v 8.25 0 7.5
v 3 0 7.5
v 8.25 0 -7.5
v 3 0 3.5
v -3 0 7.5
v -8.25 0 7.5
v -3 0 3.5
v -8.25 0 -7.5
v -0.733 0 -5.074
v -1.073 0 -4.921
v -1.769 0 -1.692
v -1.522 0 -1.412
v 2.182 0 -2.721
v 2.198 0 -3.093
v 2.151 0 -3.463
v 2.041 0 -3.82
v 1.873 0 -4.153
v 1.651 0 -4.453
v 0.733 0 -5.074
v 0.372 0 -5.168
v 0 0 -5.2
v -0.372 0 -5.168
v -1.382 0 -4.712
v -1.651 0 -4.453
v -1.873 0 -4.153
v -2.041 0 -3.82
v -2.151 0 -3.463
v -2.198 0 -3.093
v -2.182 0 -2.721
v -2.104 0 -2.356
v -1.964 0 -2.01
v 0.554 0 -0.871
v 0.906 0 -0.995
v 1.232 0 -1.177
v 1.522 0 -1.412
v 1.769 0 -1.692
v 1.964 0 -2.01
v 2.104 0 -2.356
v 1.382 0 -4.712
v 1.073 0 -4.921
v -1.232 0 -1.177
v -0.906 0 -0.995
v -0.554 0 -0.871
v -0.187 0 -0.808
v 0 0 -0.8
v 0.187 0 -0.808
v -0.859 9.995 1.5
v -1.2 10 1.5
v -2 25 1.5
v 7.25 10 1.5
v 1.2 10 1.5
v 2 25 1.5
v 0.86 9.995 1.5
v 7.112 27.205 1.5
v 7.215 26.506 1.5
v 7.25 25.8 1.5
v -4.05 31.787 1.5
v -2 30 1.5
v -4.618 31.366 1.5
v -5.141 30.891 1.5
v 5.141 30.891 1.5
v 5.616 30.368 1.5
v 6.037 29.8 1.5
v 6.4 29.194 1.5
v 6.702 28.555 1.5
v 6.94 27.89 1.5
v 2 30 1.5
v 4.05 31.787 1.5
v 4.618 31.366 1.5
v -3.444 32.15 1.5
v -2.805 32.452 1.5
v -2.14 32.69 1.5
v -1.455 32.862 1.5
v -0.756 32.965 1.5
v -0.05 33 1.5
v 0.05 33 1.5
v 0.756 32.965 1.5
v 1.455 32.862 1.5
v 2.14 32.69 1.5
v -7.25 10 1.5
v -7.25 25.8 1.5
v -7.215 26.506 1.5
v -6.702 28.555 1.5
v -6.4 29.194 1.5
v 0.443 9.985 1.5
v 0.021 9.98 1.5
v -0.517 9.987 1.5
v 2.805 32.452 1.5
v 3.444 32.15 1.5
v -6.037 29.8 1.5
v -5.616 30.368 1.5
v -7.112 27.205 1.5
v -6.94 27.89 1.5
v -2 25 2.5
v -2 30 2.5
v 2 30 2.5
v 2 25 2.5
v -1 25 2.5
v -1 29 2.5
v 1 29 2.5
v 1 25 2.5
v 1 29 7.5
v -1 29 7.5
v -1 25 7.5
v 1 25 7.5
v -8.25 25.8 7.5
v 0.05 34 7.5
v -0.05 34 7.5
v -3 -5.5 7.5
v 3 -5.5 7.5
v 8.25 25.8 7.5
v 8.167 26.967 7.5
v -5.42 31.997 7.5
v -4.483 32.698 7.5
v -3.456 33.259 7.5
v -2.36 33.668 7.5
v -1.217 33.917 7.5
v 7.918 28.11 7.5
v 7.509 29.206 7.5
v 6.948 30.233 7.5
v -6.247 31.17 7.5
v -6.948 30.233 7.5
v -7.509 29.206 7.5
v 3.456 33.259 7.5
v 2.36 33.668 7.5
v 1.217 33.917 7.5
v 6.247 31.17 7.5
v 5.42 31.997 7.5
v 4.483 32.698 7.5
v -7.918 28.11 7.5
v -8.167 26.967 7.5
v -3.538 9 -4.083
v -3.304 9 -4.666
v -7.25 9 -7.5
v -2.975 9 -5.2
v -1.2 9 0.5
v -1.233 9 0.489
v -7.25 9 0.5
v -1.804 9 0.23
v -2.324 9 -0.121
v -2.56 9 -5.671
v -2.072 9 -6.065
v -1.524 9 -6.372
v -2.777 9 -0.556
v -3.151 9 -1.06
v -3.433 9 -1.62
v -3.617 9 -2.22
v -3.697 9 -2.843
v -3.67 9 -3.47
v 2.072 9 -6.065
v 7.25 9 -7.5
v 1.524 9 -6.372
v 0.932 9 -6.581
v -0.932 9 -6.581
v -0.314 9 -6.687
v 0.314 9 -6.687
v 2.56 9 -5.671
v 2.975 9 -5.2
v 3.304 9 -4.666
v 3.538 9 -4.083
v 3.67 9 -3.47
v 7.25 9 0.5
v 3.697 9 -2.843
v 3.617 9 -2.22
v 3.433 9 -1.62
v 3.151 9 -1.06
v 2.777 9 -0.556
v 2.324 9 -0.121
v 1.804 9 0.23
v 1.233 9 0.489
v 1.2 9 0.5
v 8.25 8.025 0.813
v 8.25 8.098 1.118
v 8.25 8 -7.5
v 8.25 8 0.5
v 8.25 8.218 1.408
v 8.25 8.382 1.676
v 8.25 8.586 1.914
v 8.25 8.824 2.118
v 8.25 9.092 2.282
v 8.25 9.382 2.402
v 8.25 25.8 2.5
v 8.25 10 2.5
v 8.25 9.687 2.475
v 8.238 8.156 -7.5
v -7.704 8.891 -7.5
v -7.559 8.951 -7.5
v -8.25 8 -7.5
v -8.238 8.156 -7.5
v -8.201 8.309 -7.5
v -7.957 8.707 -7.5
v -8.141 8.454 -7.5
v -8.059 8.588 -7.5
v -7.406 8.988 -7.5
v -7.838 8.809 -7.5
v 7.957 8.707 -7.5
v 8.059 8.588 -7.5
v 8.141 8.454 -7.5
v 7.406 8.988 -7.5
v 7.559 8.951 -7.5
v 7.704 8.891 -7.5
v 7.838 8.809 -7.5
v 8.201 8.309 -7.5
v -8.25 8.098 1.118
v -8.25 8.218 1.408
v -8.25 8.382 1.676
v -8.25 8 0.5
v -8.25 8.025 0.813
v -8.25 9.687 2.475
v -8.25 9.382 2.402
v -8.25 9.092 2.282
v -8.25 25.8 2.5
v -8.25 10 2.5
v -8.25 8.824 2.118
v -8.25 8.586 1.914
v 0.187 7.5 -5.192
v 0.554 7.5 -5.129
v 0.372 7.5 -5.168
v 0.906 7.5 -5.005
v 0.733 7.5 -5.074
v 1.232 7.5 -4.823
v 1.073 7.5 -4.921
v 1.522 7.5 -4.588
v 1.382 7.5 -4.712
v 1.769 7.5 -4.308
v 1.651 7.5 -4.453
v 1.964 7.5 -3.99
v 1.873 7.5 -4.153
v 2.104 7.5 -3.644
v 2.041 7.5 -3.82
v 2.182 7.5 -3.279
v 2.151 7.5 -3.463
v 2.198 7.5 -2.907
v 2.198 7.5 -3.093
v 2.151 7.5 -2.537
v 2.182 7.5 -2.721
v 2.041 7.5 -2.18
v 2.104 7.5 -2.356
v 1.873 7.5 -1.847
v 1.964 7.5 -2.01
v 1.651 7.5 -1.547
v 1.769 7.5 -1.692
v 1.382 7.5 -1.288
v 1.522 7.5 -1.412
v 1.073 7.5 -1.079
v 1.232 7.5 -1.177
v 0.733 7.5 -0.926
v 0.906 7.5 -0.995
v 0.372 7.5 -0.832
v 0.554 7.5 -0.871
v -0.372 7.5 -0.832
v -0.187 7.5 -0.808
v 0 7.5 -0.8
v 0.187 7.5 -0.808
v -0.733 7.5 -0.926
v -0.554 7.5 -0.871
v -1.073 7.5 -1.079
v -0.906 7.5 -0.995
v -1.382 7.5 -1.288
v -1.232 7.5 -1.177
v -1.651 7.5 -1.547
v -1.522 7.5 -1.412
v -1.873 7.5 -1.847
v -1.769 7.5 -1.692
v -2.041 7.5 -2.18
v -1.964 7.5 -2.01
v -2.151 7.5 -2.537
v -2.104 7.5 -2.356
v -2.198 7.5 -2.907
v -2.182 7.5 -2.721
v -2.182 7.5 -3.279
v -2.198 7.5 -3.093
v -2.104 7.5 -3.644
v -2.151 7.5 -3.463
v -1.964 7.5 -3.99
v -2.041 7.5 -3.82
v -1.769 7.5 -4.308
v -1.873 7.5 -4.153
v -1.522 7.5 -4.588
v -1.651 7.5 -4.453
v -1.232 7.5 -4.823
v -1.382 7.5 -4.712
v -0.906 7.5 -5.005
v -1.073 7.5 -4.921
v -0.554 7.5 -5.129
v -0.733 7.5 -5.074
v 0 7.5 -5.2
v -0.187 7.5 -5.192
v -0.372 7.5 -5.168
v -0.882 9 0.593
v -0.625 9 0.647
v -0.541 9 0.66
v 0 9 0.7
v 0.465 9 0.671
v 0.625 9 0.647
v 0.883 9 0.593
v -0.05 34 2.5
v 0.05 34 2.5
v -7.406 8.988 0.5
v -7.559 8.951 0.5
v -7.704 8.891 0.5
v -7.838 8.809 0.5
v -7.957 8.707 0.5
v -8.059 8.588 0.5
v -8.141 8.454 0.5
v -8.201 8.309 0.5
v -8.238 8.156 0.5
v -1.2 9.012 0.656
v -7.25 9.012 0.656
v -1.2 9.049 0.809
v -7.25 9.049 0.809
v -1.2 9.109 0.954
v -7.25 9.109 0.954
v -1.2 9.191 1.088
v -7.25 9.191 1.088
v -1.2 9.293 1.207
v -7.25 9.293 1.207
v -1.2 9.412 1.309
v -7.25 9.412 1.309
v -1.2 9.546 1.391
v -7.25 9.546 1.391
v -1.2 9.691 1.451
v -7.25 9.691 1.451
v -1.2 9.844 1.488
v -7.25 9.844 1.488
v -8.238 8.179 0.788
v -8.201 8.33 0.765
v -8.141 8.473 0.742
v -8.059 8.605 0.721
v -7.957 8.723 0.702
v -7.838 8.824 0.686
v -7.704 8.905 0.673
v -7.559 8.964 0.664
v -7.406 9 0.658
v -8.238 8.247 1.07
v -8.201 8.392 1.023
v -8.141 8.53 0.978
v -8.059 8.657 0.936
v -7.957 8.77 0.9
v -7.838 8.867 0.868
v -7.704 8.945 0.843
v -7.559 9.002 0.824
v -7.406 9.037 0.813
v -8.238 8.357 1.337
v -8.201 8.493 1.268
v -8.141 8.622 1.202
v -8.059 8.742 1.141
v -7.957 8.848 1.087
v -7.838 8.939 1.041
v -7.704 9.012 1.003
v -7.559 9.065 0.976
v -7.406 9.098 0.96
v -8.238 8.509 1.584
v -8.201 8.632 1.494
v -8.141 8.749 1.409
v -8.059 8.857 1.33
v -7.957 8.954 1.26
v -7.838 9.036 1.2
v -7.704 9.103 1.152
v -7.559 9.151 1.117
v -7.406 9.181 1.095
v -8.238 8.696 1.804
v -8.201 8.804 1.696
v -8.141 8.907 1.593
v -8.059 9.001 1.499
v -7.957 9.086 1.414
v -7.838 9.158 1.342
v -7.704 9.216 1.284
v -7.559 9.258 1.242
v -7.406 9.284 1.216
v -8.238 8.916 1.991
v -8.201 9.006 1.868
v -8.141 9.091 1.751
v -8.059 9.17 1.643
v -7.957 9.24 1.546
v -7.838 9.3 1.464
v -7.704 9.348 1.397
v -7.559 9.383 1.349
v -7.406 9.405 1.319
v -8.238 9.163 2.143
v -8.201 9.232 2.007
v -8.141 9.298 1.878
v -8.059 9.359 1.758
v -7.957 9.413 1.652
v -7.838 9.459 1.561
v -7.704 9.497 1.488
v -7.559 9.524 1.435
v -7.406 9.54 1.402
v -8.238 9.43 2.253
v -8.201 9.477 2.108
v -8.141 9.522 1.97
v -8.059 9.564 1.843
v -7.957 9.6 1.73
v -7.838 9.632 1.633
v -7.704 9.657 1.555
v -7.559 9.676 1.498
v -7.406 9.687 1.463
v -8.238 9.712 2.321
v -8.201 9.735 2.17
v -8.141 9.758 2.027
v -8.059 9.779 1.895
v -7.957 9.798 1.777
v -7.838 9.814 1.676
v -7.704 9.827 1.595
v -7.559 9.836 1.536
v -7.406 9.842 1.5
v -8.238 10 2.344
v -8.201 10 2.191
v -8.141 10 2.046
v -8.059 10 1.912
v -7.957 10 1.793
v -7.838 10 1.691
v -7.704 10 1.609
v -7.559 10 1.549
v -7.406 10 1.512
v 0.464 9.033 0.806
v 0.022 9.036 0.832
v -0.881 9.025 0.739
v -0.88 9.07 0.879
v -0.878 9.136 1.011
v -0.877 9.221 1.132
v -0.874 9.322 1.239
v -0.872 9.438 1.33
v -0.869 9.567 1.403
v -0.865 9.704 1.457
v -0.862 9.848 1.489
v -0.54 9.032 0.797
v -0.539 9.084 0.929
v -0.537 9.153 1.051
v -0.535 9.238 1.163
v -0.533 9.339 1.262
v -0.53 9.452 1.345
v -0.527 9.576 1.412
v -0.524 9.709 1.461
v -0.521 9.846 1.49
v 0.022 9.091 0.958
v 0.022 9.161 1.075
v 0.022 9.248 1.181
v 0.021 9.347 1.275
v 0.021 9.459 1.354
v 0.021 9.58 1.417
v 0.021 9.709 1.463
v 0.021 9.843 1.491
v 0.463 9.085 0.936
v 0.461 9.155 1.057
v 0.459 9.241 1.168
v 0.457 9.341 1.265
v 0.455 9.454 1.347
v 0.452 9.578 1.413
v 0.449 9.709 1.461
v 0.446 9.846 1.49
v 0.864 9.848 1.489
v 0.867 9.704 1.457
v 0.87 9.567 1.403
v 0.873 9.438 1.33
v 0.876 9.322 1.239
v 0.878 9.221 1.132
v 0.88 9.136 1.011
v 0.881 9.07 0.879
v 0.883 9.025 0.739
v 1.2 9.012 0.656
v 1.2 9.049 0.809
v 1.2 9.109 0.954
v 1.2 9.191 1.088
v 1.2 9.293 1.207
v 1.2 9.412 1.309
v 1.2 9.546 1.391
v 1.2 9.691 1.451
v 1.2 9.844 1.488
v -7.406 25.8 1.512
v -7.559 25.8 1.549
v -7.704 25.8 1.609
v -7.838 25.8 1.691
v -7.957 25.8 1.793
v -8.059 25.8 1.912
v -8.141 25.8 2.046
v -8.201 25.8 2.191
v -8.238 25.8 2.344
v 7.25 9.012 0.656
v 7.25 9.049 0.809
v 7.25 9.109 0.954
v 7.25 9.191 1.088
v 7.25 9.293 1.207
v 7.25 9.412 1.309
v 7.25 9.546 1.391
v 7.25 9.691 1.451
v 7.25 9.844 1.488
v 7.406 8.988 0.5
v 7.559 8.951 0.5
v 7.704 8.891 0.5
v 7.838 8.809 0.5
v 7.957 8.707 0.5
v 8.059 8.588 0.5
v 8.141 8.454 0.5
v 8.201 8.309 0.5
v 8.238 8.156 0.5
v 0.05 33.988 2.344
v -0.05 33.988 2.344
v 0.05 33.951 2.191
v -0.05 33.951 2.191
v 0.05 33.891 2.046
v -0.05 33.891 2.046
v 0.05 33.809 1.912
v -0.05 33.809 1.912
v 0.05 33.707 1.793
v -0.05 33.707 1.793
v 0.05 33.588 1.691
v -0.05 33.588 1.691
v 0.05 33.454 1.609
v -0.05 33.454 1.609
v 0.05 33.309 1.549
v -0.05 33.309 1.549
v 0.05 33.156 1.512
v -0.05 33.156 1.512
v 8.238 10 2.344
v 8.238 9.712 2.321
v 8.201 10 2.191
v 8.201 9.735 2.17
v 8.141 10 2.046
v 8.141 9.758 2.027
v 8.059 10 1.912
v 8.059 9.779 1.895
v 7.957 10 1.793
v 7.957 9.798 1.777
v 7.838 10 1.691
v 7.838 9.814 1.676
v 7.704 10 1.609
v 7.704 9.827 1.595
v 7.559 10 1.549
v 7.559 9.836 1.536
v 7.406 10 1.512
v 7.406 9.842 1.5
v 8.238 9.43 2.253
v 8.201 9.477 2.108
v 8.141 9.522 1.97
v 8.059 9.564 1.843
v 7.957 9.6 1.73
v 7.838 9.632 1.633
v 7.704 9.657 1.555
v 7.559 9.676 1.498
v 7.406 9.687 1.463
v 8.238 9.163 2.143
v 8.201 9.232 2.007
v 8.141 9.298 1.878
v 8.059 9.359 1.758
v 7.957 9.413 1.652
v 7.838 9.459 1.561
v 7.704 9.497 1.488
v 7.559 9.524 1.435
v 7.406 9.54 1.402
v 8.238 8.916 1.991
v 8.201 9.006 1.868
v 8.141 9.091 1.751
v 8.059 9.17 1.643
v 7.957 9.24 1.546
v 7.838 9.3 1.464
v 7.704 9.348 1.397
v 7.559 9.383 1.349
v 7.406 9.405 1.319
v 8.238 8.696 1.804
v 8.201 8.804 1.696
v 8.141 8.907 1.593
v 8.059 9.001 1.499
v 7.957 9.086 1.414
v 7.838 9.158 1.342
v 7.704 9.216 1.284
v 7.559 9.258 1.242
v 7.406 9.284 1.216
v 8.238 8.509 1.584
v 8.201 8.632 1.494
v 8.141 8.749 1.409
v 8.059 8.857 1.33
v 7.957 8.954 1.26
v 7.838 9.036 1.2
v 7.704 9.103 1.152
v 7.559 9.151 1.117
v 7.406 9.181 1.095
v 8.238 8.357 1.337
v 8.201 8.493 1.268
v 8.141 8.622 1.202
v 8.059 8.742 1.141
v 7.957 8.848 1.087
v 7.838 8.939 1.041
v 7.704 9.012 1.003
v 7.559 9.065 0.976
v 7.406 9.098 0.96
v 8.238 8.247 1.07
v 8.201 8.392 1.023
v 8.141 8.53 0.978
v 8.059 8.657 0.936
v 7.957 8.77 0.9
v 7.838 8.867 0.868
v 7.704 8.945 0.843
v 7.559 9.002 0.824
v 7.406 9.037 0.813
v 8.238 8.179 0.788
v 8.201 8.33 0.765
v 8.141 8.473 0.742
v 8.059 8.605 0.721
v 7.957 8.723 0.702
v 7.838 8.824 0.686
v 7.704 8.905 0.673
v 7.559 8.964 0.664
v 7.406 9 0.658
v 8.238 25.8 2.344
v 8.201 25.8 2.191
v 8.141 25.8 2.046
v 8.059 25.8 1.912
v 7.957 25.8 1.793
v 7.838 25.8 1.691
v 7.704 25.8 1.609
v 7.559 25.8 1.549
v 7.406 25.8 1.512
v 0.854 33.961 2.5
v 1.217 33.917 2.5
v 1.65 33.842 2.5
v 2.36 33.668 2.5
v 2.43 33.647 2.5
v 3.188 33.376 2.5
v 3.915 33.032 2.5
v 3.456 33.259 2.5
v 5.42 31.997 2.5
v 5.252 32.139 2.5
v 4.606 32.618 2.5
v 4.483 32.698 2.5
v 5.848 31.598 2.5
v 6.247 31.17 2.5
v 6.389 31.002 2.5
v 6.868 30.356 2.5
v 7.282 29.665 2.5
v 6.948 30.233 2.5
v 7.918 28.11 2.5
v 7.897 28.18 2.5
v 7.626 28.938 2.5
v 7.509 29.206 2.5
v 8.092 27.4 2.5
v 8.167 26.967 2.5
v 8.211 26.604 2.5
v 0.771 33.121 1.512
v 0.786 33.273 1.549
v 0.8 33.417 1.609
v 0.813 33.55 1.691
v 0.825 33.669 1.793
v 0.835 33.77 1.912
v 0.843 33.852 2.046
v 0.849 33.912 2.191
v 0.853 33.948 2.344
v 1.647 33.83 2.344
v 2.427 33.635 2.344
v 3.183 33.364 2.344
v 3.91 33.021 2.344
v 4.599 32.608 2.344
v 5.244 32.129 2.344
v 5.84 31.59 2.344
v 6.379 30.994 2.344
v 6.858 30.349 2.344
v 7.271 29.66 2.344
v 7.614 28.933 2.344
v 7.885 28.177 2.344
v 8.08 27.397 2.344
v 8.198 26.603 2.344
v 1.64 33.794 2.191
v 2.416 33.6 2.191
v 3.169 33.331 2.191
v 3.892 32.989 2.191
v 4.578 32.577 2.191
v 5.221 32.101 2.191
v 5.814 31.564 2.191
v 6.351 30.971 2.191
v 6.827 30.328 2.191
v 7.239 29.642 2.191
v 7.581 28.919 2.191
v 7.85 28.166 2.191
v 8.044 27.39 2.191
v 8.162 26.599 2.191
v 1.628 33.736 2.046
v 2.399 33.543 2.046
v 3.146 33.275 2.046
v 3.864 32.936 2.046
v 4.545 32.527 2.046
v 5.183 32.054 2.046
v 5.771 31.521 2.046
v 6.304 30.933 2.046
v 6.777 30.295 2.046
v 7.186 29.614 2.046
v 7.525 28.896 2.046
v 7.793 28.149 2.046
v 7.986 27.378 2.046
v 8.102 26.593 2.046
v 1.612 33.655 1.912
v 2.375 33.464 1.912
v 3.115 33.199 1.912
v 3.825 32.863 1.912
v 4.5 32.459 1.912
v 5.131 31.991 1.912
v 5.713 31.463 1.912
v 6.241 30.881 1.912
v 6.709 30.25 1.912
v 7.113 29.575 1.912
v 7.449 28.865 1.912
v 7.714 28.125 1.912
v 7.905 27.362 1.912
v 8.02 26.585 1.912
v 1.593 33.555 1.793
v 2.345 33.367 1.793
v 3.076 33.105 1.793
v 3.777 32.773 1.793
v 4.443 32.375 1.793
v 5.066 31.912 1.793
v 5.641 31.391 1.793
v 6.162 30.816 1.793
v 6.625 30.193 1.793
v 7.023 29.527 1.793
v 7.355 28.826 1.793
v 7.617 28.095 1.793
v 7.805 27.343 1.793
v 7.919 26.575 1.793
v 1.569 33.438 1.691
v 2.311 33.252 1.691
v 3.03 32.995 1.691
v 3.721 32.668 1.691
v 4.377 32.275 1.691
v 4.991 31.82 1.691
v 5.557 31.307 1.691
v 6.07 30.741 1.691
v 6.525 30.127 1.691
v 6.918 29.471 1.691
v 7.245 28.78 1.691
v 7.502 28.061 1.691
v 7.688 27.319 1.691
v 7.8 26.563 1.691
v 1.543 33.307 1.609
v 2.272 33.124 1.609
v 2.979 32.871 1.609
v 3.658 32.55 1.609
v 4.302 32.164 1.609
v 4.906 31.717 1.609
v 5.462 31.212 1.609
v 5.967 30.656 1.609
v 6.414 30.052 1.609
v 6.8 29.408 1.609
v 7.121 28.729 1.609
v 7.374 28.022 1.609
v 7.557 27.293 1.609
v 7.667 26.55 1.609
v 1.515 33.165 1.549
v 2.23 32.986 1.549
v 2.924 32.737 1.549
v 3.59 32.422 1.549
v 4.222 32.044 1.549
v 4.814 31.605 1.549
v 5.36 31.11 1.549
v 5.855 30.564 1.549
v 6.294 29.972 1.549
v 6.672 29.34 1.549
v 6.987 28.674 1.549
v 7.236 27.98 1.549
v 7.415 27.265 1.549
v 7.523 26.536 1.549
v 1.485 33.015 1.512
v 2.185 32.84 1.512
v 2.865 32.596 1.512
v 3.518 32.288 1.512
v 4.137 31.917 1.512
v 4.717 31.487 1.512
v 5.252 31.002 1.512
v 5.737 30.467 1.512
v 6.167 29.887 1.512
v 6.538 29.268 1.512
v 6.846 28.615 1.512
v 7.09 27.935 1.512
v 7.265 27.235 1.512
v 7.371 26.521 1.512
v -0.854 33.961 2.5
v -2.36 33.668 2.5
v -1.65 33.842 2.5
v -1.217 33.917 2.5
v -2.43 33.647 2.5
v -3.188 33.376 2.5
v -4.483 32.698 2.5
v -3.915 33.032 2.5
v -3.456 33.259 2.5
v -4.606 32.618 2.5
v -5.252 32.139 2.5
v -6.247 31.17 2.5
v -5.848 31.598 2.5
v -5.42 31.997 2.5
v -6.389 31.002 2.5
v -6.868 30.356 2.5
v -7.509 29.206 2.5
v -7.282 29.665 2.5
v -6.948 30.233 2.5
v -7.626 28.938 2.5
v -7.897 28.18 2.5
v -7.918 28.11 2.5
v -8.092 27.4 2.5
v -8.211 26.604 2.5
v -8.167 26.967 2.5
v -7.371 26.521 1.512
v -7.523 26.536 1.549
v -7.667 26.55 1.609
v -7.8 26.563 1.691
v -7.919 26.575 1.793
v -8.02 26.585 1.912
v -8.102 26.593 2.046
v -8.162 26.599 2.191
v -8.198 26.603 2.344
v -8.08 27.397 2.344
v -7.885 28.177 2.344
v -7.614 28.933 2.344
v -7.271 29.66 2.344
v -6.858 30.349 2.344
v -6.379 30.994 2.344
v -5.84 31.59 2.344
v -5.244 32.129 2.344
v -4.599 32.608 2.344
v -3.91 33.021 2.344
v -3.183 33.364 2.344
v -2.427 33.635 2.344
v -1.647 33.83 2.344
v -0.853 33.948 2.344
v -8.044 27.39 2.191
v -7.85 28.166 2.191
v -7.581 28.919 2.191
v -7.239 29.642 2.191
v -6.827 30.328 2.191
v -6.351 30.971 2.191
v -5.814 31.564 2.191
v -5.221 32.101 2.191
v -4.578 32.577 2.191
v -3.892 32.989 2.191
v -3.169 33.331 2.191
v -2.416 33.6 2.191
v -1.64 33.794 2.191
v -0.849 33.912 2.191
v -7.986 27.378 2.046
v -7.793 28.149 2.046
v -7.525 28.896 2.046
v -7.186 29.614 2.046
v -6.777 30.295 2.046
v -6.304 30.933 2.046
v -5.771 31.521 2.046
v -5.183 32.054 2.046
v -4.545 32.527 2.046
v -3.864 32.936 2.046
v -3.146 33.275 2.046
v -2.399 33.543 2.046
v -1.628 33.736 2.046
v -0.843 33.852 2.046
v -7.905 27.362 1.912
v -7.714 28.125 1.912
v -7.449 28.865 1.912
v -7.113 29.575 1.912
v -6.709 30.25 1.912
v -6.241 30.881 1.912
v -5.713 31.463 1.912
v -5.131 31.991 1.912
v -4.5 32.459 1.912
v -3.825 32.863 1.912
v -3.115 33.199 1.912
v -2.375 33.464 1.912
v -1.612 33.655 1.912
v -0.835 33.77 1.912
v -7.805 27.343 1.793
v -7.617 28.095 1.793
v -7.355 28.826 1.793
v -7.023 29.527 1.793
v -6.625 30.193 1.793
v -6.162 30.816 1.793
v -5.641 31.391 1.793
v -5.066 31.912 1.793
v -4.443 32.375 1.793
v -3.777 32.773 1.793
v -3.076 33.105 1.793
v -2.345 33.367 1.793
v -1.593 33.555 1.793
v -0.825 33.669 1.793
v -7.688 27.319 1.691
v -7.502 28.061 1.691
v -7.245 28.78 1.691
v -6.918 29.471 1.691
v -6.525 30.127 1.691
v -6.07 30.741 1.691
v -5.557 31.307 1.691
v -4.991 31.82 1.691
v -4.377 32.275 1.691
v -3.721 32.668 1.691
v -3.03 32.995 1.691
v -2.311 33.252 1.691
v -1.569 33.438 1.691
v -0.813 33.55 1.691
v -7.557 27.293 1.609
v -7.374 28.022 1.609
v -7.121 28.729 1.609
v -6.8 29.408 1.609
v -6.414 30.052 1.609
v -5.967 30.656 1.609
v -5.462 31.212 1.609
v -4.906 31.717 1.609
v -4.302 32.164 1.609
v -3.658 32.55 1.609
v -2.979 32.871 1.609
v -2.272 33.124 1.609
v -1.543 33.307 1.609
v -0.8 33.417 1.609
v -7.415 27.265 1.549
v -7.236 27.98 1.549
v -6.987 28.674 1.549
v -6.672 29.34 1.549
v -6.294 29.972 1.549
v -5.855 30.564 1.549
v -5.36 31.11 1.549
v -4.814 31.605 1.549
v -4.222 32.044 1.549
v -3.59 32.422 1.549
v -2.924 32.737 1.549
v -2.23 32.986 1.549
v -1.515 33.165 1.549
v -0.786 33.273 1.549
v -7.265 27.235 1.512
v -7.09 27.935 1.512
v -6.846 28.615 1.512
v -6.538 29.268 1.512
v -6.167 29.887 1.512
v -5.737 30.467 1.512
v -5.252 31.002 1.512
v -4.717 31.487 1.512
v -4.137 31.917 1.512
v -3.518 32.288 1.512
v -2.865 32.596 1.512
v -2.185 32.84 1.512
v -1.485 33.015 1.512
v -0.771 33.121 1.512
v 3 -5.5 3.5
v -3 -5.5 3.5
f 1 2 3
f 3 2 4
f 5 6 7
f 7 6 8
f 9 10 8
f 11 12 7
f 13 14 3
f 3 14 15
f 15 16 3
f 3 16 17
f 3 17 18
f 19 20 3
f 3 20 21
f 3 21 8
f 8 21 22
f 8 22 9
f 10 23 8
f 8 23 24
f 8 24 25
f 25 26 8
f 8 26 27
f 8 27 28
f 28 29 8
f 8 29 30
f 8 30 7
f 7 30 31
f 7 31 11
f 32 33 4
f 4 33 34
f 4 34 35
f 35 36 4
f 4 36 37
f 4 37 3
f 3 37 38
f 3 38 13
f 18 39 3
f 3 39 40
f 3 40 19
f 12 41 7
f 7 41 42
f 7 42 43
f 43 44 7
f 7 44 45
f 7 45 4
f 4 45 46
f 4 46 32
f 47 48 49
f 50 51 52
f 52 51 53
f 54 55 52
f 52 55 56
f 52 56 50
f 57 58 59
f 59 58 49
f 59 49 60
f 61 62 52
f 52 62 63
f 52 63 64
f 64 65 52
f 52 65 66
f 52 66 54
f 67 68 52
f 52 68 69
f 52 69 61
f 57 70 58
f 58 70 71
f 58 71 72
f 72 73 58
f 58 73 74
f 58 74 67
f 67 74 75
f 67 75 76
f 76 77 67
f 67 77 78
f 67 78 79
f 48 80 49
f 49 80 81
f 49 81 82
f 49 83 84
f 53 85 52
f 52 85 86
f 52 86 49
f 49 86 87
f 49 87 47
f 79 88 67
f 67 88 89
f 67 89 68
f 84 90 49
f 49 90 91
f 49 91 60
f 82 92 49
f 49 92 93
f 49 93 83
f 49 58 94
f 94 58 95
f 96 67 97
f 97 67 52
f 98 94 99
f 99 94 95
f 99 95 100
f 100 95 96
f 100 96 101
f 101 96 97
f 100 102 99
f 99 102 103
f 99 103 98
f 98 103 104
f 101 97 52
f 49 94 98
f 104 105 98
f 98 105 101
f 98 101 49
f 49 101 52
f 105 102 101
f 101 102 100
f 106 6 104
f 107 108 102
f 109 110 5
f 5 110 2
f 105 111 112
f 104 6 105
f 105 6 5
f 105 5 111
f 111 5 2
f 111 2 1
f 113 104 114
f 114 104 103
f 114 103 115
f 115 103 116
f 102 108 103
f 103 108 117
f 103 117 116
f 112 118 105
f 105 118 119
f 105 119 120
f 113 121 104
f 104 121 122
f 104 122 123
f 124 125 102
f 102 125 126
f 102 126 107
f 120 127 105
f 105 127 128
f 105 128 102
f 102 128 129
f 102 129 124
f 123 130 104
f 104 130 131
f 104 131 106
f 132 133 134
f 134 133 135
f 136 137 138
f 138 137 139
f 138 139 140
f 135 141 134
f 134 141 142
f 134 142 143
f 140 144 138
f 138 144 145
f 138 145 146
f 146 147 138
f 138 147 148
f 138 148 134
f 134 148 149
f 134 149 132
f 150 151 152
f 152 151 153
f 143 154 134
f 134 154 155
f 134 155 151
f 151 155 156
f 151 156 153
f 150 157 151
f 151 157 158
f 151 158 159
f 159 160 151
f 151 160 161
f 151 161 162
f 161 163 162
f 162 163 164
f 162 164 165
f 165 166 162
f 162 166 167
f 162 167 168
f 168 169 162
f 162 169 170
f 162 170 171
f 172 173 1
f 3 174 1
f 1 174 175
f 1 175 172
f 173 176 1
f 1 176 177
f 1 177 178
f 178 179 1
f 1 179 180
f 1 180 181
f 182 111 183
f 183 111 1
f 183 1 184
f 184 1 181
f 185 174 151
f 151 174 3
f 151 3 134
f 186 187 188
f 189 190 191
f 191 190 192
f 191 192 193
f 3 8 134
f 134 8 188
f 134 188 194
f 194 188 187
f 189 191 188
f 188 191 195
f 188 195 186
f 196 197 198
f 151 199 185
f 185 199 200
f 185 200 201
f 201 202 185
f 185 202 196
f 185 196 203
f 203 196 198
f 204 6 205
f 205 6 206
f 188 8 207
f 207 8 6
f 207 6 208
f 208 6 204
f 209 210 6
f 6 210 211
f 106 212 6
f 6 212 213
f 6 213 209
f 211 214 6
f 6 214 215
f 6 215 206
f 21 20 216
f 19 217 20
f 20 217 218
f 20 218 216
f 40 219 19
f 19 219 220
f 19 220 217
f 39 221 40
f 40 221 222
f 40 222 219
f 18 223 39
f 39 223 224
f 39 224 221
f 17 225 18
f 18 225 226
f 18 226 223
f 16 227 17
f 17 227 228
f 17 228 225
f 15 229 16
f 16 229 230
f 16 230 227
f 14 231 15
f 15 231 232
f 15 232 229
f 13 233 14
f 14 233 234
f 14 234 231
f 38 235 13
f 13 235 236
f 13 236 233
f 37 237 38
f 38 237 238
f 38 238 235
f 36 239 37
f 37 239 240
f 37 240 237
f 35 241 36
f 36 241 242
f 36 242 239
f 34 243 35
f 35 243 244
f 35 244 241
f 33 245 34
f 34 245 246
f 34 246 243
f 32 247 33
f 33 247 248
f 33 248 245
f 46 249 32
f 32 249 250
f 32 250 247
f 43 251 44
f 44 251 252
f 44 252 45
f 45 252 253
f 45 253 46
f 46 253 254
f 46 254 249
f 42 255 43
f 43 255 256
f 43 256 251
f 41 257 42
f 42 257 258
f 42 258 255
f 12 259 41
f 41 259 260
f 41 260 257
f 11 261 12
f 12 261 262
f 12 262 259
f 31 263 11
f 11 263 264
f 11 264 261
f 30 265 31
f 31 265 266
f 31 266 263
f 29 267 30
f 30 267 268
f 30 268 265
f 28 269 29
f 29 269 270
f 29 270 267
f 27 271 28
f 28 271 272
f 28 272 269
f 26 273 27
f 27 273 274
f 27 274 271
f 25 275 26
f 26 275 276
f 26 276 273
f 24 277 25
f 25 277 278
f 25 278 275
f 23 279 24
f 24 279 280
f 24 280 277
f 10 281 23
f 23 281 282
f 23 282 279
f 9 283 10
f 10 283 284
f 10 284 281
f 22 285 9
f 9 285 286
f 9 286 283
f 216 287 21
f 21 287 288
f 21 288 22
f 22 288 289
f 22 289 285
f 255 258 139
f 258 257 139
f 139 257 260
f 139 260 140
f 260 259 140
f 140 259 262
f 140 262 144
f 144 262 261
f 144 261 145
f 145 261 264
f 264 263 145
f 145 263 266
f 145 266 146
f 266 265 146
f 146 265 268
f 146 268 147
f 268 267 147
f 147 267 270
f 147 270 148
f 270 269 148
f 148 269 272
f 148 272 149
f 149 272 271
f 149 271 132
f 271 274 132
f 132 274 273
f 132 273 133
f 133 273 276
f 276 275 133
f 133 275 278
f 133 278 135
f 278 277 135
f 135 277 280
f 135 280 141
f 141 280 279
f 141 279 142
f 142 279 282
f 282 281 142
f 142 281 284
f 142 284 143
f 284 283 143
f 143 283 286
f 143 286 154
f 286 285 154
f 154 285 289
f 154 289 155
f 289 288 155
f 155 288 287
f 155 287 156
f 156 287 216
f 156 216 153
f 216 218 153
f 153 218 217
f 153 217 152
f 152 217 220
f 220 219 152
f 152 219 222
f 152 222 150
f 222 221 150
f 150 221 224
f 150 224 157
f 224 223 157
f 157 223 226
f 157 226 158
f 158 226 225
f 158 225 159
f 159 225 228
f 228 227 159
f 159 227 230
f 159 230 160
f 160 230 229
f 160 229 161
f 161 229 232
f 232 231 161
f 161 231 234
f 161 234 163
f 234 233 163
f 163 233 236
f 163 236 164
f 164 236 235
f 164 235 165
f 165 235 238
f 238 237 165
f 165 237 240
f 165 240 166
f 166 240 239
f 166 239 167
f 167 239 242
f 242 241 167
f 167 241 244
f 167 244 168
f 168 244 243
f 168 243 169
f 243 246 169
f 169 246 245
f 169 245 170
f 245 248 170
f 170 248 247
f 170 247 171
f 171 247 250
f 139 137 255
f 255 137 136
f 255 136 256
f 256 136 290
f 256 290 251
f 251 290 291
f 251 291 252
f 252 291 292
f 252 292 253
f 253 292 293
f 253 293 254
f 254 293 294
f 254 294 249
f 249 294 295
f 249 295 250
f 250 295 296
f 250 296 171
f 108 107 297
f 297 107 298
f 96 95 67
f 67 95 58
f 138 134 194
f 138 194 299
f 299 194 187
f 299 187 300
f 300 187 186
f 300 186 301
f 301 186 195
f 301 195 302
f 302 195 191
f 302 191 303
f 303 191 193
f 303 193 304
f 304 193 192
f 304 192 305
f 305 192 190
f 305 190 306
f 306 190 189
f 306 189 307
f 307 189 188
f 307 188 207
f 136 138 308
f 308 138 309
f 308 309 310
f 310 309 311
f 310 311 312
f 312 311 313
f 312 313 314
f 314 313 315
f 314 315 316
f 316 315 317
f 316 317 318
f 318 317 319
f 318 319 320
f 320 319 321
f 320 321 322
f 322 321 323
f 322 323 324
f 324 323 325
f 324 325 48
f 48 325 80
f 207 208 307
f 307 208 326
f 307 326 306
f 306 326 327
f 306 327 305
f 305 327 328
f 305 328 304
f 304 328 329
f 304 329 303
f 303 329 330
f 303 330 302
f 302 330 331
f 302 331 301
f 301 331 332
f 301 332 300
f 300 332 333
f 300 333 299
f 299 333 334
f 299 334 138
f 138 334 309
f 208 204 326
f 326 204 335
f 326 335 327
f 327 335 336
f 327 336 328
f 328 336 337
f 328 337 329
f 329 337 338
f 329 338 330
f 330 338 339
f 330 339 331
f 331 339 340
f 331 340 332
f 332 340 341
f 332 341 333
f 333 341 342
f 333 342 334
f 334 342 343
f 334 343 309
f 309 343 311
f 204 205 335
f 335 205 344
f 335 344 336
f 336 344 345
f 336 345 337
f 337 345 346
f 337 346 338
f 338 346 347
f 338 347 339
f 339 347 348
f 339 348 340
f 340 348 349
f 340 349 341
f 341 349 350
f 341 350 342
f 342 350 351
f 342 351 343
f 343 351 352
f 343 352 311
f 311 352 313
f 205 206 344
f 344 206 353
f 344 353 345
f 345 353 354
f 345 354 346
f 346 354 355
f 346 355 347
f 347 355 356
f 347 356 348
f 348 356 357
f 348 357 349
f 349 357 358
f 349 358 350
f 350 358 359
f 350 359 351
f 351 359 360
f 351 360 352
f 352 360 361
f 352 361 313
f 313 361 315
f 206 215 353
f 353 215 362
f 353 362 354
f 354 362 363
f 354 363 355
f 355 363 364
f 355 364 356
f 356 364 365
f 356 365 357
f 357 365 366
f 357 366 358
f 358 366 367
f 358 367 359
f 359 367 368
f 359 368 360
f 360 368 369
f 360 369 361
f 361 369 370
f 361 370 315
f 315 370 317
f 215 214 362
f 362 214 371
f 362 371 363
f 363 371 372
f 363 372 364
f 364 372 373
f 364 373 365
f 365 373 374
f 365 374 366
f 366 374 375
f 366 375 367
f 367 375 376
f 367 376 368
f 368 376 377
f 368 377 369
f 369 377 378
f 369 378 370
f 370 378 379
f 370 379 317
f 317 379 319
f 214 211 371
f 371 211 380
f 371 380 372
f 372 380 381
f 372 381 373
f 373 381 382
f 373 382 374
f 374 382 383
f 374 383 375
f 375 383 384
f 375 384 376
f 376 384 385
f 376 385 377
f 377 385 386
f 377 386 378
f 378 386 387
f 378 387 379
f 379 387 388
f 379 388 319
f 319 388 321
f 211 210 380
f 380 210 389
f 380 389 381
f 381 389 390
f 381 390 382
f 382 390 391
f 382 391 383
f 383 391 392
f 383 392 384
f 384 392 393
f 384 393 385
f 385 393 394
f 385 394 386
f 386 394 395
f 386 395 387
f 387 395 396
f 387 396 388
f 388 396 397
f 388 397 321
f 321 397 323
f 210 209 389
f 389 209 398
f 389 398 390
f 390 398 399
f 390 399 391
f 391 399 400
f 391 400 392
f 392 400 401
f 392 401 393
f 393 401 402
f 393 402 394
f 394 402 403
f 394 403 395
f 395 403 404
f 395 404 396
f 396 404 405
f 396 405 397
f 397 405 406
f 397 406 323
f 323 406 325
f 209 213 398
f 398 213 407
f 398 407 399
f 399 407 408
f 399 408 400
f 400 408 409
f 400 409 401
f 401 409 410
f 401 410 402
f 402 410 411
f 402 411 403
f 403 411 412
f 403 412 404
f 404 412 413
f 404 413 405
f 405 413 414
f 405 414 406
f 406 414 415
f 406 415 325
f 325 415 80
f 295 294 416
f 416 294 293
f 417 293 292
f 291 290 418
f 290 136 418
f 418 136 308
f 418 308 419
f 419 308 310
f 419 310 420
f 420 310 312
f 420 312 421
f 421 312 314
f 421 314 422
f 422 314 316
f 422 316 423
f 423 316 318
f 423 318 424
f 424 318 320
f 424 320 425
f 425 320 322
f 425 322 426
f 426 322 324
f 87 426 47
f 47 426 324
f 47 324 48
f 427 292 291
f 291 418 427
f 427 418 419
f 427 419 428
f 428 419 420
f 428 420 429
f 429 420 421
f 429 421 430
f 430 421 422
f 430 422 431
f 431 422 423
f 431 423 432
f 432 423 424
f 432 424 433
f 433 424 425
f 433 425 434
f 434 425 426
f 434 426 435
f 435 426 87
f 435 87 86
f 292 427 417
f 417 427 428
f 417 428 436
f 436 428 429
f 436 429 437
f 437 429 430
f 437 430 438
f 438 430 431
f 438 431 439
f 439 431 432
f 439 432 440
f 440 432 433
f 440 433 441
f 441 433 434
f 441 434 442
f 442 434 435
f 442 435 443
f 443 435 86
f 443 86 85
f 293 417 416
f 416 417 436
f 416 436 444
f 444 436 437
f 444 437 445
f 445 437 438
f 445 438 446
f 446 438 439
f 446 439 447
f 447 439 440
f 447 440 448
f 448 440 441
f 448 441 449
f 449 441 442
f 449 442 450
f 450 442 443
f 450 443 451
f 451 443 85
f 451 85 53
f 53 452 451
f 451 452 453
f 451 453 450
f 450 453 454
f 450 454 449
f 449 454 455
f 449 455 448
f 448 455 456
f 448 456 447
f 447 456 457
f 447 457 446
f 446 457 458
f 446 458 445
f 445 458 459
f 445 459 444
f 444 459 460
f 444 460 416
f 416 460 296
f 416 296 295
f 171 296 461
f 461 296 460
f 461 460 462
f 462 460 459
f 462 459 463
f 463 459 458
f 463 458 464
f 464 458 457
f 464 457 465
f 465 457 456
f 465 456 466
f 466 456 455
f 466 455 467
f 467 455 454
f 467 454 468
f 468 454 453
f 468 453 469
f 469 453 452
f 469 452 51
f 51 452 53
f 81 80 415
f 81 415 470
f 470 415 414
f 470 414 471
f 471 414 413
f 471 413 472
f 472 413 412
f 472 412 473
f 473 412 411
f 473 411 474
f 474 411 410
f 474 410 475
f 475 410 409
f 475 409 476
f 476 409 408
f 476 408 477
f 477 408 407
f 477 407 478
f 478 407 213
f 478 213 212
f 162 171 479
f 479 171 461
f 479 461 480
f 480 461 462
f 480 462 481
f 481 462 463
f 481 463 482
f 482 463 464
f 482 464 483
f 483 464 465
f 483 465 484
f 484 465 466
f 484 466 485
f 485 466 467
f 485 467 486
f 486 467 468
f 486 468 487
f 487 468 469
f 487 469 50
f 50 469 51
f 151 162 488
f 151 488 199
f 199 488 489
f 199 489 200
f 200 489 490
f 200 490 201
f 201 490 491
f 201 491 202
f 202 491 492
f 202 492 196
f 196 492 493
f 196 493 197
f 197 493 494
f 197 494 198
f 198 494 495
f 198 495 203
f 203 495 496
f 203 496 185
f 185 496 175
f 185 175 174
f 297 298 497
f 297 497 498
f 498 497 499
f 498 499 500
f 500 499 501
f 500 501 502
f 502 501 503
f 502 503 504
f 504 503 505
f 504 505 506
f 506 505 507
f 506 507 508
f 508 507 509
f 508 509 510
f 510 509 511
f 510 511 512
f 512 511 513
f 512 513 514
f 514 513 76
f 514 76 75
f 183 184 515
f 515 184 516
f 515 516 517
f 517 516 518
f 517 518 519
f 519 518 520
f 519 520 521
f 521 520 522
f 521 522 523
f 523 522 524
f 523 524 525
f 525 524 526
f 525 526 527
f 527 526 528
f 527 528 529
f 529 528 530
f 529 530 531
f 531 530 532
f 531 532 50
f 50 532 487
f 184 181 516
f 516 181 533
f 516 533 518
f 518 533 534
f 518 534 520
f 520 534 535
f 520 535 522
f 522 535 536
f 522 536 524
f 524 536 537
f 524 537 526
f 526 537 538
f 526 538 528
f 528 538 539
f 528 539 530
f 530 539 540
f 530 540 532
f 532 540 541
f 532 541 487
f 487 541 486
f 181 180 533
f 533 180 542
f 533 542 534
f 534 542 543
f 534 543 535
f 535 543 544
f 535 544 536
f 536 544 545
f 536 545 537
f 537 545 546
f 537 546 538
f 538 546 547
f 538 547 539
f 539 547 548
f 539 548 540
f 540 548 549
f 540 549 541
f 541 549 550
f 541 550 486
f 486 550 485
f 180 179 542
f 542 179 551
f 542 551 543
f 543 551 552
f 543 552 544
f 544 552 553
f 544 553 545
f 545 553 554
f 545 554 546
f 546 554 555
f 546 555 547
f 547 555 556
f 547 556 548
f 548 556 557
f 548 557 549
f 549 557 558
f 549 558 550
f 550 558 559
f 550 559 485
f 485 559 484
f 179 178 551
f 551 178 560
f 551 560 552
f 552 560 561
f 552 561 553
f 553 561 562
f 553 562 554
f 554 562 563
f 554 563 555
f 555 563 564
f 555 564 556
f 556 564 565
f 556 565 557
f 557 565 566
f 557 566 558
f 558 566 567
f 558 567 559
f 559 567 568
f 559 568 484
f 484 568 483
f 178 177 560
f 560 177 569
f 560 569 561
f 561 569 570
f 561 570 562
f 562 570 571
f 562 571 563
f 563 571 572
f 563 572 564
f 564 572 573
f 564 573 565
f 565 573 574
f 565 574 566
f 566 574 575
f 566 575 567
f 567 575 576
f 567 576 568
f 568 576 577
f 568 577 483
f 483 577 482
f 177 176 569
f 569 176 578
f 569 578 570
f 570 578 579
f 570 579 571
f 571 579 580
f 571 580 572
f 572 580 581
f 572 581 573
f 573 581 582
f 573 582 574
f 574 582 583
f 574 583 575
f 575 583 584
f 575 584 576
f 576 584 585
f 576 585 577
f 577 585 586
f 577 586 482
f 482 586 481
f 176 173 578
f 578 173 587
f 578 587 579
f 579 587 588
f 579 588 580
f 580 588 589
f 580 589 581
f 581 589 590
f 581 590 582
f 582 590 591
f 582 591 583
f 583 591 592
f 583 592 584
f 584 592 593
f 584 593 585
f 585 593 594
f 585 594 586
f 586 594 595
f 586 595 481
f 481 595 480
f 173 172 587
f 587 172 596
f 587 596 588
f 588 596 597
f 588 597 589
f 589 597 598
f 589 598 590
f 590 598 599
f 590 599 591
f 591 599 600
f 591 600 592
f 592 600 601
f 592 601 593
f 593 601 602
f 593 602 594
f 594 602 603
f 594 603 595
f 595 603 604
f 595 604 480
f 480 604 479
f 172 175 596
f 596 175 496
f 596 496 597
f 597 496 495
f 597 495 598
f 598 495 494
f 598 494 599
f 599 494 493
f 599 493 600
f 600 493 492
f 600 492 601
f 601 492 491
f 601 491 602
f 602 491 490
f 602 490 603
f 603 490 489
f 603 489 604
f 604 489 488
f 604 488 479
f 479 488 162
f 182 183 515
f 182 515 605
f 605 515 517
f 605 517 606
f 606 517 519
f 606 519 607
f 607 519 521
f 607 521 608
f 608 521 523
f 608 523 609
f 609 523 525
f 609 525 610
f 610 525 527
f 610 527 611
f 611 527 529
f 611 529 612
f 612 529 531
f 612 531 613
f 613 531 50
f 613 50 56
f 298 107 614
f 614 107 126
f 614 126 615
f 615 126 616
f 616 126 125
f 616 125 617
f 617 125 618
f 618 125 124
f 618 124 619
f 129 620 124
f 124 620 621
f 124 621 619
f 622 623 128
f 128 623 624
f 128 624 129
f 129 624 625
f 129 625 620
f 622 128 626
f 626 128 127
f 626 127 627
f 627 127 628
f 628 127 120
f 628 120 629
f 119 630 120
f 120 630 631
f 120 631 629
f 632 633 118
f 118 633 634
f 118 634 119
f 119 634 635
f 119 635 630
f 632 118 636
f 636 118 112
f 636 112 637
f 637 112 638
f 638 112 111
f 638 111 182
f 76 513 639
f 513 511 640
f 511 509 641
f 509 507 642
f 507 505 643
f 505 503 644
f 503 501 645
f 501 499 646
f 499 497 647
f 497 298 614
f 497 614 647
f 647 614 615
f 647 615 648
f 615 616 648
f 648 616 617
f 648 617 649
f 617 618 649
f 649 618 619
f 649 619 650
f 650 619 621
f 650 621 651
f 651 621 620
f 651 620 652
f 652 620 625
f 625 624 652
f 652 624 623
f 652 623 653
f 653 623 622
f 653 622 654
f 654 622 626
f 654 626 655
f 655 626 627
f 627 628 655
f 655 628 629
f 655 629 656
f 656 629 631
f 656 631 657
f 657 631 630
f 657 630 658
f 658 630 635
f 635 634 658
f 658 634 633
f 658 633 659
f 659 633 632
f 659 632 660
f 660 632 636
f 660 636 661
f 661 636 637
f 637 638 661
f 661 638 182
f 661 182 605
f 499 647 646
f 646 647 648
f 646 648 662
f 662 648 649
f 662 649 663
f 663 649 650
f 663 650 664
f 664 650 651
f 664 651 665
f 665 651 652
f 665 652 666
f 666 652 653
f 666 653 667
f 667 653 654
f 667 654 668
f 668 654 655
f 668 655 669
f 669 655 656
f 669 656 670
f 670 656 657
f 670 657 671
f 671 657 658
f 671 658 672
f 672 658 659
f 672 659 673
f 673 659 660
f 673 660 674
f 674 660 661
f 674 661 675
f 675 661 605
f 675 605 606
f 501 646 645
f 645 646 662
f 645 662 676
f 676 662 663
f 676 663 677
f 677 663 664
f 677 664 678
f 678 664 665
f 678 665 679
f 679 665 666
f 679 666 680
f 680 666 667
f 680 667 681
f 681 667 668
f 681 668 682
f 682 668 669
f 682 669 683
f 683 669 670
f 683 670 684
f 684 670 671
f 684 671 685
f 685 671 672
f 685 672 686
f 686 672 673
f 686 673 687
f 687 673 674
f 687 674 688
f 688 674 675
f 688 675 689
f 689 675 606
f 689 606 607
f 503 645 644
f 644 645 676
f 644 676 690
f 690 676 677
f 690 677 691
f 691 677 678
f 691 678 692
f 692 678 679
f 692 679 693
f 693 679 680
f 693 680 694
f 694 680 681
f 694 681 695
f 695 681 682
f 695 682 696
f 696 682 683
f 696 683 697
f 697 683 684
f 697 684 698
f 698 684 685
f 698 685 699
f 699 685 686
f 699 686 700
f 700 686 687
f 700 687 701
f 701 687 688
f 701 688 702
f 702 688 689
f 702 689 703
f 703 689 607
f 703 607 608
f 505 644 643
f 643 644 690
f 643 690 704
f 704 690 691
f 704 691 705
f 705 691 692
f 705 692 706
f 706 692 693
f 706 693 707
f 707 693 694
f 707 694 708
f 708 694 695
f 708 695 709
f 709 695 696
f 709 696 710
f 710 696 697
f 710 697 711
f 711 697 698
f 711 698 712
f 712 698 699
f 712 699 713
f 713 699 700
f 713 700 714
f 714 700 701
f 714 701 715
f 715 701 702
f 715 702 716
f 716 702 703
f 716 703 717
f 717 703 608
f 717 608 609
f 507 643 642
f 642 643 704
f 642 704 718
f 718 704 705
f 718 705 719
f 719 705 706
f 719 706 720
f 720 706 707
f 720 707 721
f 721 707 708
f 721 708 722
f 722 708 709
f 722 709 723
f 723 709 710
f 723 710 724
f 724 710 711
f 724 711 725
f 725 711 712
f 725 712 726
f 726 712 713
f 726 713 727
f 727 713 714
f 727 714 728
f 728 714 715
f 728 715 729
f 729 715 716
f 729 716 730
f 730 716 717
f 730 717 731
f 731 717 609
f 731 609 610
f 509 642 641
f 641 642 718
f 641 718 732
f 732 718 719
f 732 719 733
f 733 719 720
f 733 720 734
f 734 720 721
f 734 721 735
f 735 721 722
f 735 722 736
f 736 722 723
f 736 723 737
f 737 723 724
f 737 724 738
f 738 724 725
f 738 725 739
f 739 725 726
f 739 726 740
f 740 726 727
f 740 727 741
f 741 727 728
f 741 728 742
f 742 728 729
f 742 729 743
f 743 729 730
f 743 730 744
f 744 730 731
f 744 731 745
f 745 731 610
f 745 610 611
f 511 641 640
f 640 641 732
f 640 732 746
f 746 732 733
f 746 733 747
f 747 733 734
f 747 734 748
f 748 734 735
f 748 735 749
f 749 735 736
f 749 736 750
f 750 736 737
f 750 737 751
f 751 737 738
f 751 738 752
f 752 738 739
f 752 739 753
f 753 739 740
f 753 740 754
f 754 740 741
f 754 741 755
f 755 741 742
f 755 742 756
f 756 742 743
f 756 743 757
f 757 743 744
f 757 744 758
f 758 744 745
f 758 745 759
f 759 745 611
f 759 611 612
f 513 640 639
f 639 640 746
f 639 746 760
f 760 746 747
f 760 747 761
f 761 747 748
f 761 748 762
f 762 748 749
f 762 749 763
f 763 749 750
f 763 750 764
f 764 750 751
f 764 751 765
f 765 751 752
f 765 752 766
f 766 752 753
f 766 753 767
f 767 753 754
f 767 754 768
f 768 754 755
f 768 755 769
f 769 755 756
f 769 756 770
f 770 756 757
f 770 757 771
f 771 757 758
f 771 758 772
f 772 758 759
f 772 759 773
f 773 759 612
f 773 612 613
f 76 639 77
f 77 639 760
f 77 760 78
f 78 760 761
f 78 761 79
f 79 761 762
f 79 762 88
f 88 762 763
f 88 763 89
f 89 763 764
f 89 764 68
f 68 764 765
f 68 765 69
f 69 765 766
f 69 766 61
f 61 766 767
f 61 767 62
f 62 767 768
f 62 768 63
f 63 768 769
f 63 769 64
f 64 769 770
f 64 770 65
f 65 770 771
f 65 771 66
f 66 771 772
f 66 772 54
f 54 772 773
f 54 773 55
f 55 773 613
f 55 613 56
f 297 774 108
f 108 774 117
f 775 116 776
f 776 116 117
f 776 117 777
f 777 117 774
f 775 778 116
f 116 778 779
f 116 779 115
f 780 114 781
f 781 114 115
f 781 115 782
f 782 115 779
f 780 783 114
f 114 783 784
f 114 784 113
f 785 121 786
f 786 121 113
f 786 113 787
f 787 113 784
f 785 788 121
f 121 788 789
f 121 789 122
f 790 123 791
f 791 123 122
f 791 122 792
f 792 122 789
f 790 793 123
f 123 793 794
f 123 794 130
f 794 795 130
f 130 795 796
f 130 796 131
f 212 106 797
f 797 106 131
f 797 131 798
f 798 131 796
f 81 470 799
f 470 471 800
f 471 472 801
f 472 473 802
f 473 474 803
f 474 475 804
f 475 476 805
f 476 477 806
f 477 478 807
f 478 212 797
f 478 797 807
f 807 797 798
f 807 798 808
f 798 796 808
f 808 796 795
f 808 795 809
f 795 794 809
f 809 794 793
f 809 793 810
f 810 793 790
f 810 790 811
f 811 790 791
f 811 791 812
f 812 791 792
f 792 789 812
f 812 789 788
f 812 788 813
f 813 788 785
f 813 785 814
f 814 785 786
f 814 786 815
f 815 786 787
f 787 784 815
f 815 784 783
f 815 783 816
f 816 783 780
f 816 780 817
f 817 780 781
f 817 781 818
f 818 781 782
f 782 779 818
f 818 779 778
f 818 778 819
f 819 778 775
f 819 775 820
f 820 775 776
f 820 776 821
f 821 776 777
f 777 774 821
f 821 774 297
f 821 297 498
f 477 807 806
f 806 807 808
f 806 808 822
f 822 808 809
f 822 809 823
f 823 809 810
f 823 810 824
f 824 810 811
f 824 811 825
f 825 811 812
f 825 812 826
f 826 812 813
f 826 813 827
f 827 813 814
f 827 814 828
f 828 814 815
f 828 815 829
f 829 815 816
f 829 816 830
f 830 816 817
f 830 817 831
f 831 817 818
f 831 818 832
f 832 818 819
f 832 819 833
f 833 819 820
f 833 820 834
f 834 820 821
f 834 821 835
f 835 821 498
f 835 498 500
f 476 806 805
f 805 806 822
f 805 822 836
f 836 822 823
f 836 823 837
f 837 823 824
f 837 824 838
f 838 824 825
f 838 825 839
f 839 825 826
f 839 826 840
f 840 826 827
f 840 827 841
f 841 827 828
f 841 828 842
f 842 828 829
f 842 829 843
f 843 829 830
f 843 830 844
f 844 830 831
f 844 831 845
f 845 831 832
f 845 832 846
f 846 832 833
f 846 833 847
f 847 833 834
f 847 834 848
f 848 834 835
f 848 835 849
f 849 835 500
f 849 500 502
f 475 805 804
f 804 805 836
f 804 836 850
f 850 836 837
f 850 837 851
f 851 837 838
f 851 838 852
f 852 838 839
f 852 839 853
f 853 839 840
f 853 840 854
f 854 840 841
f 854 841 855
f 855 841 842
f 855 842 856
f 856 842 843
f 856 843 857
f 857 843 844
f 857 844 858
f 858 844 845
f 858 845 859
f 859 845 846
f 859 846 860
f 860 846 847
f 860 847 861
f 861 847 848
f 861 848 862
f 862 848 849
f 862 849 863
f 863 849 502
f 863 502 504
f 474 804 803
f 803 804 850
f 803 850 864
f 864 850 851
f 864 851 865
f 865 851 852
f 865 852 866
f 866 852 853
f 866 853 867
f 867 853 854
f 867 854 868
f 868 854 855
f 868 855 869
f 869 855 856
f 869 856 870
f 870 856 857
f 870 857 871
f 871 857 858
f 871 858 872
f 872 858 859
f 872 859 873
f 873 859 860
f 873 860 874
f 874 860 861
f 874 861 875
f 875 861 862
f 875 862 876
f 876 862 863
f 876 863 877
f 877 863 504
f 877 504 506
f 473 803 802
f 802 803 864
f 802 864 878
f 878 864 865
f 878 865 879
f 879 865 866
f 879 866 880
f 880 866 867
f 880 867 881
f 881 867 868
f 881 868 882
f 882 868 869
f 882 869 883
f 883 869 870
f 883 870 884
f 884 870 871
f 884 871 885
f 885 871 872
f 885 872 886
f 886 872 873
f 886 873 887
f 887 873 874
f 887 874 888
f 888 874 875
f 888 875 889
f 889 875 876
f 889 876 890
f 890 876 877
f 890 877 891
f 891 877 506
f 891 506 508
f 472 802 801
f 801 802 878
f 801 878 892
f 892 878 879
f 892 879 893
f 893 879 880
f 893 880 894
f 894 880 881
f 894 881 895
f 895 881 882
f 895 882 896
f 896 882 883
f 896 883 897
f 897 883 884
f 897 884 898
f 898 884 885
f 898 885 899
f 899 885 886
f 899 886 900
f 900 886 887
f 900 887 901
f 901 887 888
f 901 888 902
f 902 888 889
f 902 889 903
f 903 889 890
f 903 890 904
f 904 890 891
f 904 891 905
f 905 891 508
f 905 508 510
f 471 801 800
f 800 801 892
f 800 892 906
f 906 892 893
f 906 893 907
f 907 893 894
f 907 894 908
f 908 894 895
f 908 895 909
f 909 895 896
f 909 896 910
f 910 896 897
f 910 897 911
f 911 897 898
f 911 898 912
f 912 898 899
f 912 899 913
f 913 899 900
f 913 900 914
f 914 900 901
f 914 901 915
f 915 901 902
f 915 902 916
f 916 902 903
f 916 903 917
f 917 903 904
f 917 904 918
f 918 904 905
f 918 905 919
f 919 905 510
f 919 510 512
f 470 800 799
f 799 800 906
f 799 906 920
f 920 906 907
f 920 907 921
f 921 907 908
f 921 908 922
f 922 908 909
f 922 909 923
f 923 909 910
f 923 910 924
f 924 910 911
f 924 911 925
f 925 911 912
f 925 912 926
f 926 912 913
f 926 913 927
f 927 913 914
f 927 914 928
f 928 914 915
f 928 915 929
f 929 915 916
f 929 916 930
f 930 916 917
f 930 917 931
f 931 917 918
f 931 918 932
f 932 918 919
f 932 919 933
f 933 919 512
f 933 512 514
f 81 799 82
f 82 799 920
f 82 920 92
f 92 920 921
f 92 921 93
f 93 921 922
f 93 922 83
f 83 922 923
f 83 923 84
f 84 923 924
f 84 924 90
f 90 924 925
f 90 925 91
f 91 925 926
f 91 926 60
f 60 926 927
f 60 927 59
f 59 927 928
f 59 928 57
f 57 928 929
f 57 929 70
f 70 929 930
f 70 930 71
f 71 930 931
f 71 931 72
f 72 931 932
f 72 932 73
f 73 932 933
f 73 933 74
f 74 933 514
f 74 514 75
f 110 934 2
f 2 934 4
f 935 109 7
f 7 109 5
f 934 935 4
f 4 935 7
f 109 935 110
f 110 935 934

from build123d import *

# Parameters (mm, degrees)
SKETCH1_W               = 16.5
SKETCH1_H               = 15
SKETCH1_R               = 2.2
BOSS_EXTRUDE1_DEPTH     = 9
CHAMFER1_SIZE           = 1.5
SKETCH2_W               = 16.5
SKETCH2_H               = 6
BOSS_EXTRUDE2_DEPTH     = 25
CUT_EXTRUDE2_DEPTH      = 37.125648783
CUT_EXTRUDE2_DEPTH_BACK = 37.125648783
SKETCH4_W               = 1
SKETCH4_H               = 4
SKETCH4_3_W             = 4
SKETCH4_3_H             = 6
SKETCH4_3_W_2           = 2
SKETCH4_3_H_2           = 4
CUT_EXTRUDE3_DEPTH      = 1
FILLET1_R               = 1
SKETCH7_W               = 4
SKETCH7_H               = 1
BOSS_EXTRUDE4_DEPTH     = 1
FILLET2_R               = 8.2
SKETCH8_W               = 6
SKETCH8_H               = 4
BOSS_EXTRUDE5_DEPTH     = 5.5


with BuildPart() as part:
    # Sketch1 → Boss-Extrude1 (new body)
    with BuildSketch(Plane(origin=(0, 0, 0), x_dir=(1, 0, 0), z_dir=(0, 1, 0))):
        Rectangle(SKETCH1_W, SKETCH1_H)
        with Locations(Location((0, 3, 0), (0, 0, 270))):
            Circle(SKETCH1_R, mode=Mode.SUBTRACT)
    extrude(amount=BOSS_EXTRUDE1_DEPTH)

    # Chamfer1
    chamfer1_edges = [part.edges().sort_by_distance(p)[0] for p in [
        (0, 9, -5.2),
    ]]
    chamfer(chamfer1_edges, length=CHAMFER1_SIZE)

    # Sketch2 → Boss-Extrude2 (add)
    with BuildSketch(Plane(origin=(0, 9, 0), x_dir=(1, 0, 0), z_dir=(0, 1, 0))):
        with Locations((0, -4.5)):
            Rectangle(SKETCH2_W, SKETCH2_H)
    extrude(amount=BOSS_EXTRUDE2_DEPTH)

    # Sketch4 → Cut-Extrude2 (cut, two sides: drawn at the far end of the back side and taken through both)
    with BuildSketch(Plane(origin=(0, 0, 1.5), x_dir=(-1, 0, 0), z_dir=(0, 0, -1)).offset(-CUT_EXTRUDE2_DEPTH_BACK)):
        with Locations((0.5, 27)):
            Rectangle(SKETCH4_W, SKETCH4_H)
        with Locations((-0.5, 27)):
            Rectangle(SKETCH4_W, SKETCH4_H)
    extrude(amount=CUT_EXTRUDE2_DEPTH + CUT_EXTRUDE2_DEPTH_BACK, mode=Mode.SUBTRACT)

    # Sketch4<3> → Cut-Extrude3 (cut)
    with BuildSketch(Plane(origin=(0, 0, 1.5), x_dir=(-1, 0, 0), z_dir=(0, 0, -1))):
        with Locations((0, 27)):
            Rectangle(SKETCH4_3_W, SKETCH4_3_H)
        with Locations((0, 27)):
            Rectangle(SKETCH4_3_W_2, SKETCH4_3_H_2, mode=Mode.SUBTRACT)
    extrude(amount=-CUT_EXTRUDE3_DEPTH, mode=Mode.SUBTRACT)

    # Fillet1
    fillet1_edges = [part.edges().sort_by_distance(p)[0] for p in [
        (-8.25, 9, -3),
        (8.25, 9, -3),
        (-8.25, 21.5, 1.5),
        (0, 9, 1.5),
        (8.25, 21.5, 1.5),
        (0, 34, 1.5),
    ]]
    fillet(fillet1_edges, radius=FILLET1_R)

    # Sketch7 → Boss-Extrude4 (add)
    with BuildSketch(Plane(origin=(0, 0, 2.5), x_dir=(-1, 0, 0), z_dir=(0, 0, -1))):
        with Locations((0, 24.5)):
            Rectangle(SKETCH7_W, SKETCH7_H)
    extrude(amount=BOSS_EXTRUDE4_DEPTH)

    # Fillet2
    # the kernel refuses this fillet: 8.2 mm, written as the material it takes off along each edge
    with BuildSketch(Plane(origin=(-0.05, 25.8, 1.5), x_dir=(-1, 0, 0), z_dir=(0, -1, 0))) as fillet2_piece_1:
        with BuildLine():
            CenterArc((7.2, -1), 1, 0, 90)
            Line((8.2, -1), (8.2, 0))
            Line((8.2, 0), (7.2, 0))
        make_face()
    revolve(axis=Axis((-0.05, 25.8, 1.5), (0, 0, -1)), revolution_arc=90, mode=Mode.SUBTRACT)
    with BuildSketch(Plane(origin=(0.05, 25.8, 1.5), x_dir=(0, 1, 0), z_dir=(-1, 0, 0))) as fillet2_piece_2:
        with BuildLine():
            CenterArc((7.2, -1), 1, 0, 90)
            Line((8.2, -1), (8.2, 0))
            Line((8.2, 0), (7.2, 0))
        make_face()
    revolve(axis=Axis((0.05, 25.8, 1.5), (0, 0, -1)), revolution_arc=90, mode=Mode.SUBTRACT)
    with BuildSketch(Plane(origin=(8.25, 34, 1.5), x_dir=(0, -1, 0), z_dir=(0, 0, 1)), Plane(origin=(-8.25, 34, 28), x_dir=(0, -1, 0), z_dir=(0, 0, -1))) as fillet2_piece_3:
        with BuildLine():
            CenterArc((FILLET2_R, -FILLET2_R), FILLET2_R, 90, 90)
            Line((0, -FILLET2_R), (0, 0))
            Line((0, 0), (FILLET2_R, 0))
        make_face()
    extrude(amount=26.5, mode=Mode.SUBTRACT)

    # Sketch8 → Boss-Extrude5 (add)
    with BuildSketch(Plane.XZ):
        with Locations((0, 5.5)):
            Rectangle(SKETCH8_W, SKETCH8_H)
    extrude(amount=BOSS_EXTRUDE5_DEPTH)


solid = part.part
